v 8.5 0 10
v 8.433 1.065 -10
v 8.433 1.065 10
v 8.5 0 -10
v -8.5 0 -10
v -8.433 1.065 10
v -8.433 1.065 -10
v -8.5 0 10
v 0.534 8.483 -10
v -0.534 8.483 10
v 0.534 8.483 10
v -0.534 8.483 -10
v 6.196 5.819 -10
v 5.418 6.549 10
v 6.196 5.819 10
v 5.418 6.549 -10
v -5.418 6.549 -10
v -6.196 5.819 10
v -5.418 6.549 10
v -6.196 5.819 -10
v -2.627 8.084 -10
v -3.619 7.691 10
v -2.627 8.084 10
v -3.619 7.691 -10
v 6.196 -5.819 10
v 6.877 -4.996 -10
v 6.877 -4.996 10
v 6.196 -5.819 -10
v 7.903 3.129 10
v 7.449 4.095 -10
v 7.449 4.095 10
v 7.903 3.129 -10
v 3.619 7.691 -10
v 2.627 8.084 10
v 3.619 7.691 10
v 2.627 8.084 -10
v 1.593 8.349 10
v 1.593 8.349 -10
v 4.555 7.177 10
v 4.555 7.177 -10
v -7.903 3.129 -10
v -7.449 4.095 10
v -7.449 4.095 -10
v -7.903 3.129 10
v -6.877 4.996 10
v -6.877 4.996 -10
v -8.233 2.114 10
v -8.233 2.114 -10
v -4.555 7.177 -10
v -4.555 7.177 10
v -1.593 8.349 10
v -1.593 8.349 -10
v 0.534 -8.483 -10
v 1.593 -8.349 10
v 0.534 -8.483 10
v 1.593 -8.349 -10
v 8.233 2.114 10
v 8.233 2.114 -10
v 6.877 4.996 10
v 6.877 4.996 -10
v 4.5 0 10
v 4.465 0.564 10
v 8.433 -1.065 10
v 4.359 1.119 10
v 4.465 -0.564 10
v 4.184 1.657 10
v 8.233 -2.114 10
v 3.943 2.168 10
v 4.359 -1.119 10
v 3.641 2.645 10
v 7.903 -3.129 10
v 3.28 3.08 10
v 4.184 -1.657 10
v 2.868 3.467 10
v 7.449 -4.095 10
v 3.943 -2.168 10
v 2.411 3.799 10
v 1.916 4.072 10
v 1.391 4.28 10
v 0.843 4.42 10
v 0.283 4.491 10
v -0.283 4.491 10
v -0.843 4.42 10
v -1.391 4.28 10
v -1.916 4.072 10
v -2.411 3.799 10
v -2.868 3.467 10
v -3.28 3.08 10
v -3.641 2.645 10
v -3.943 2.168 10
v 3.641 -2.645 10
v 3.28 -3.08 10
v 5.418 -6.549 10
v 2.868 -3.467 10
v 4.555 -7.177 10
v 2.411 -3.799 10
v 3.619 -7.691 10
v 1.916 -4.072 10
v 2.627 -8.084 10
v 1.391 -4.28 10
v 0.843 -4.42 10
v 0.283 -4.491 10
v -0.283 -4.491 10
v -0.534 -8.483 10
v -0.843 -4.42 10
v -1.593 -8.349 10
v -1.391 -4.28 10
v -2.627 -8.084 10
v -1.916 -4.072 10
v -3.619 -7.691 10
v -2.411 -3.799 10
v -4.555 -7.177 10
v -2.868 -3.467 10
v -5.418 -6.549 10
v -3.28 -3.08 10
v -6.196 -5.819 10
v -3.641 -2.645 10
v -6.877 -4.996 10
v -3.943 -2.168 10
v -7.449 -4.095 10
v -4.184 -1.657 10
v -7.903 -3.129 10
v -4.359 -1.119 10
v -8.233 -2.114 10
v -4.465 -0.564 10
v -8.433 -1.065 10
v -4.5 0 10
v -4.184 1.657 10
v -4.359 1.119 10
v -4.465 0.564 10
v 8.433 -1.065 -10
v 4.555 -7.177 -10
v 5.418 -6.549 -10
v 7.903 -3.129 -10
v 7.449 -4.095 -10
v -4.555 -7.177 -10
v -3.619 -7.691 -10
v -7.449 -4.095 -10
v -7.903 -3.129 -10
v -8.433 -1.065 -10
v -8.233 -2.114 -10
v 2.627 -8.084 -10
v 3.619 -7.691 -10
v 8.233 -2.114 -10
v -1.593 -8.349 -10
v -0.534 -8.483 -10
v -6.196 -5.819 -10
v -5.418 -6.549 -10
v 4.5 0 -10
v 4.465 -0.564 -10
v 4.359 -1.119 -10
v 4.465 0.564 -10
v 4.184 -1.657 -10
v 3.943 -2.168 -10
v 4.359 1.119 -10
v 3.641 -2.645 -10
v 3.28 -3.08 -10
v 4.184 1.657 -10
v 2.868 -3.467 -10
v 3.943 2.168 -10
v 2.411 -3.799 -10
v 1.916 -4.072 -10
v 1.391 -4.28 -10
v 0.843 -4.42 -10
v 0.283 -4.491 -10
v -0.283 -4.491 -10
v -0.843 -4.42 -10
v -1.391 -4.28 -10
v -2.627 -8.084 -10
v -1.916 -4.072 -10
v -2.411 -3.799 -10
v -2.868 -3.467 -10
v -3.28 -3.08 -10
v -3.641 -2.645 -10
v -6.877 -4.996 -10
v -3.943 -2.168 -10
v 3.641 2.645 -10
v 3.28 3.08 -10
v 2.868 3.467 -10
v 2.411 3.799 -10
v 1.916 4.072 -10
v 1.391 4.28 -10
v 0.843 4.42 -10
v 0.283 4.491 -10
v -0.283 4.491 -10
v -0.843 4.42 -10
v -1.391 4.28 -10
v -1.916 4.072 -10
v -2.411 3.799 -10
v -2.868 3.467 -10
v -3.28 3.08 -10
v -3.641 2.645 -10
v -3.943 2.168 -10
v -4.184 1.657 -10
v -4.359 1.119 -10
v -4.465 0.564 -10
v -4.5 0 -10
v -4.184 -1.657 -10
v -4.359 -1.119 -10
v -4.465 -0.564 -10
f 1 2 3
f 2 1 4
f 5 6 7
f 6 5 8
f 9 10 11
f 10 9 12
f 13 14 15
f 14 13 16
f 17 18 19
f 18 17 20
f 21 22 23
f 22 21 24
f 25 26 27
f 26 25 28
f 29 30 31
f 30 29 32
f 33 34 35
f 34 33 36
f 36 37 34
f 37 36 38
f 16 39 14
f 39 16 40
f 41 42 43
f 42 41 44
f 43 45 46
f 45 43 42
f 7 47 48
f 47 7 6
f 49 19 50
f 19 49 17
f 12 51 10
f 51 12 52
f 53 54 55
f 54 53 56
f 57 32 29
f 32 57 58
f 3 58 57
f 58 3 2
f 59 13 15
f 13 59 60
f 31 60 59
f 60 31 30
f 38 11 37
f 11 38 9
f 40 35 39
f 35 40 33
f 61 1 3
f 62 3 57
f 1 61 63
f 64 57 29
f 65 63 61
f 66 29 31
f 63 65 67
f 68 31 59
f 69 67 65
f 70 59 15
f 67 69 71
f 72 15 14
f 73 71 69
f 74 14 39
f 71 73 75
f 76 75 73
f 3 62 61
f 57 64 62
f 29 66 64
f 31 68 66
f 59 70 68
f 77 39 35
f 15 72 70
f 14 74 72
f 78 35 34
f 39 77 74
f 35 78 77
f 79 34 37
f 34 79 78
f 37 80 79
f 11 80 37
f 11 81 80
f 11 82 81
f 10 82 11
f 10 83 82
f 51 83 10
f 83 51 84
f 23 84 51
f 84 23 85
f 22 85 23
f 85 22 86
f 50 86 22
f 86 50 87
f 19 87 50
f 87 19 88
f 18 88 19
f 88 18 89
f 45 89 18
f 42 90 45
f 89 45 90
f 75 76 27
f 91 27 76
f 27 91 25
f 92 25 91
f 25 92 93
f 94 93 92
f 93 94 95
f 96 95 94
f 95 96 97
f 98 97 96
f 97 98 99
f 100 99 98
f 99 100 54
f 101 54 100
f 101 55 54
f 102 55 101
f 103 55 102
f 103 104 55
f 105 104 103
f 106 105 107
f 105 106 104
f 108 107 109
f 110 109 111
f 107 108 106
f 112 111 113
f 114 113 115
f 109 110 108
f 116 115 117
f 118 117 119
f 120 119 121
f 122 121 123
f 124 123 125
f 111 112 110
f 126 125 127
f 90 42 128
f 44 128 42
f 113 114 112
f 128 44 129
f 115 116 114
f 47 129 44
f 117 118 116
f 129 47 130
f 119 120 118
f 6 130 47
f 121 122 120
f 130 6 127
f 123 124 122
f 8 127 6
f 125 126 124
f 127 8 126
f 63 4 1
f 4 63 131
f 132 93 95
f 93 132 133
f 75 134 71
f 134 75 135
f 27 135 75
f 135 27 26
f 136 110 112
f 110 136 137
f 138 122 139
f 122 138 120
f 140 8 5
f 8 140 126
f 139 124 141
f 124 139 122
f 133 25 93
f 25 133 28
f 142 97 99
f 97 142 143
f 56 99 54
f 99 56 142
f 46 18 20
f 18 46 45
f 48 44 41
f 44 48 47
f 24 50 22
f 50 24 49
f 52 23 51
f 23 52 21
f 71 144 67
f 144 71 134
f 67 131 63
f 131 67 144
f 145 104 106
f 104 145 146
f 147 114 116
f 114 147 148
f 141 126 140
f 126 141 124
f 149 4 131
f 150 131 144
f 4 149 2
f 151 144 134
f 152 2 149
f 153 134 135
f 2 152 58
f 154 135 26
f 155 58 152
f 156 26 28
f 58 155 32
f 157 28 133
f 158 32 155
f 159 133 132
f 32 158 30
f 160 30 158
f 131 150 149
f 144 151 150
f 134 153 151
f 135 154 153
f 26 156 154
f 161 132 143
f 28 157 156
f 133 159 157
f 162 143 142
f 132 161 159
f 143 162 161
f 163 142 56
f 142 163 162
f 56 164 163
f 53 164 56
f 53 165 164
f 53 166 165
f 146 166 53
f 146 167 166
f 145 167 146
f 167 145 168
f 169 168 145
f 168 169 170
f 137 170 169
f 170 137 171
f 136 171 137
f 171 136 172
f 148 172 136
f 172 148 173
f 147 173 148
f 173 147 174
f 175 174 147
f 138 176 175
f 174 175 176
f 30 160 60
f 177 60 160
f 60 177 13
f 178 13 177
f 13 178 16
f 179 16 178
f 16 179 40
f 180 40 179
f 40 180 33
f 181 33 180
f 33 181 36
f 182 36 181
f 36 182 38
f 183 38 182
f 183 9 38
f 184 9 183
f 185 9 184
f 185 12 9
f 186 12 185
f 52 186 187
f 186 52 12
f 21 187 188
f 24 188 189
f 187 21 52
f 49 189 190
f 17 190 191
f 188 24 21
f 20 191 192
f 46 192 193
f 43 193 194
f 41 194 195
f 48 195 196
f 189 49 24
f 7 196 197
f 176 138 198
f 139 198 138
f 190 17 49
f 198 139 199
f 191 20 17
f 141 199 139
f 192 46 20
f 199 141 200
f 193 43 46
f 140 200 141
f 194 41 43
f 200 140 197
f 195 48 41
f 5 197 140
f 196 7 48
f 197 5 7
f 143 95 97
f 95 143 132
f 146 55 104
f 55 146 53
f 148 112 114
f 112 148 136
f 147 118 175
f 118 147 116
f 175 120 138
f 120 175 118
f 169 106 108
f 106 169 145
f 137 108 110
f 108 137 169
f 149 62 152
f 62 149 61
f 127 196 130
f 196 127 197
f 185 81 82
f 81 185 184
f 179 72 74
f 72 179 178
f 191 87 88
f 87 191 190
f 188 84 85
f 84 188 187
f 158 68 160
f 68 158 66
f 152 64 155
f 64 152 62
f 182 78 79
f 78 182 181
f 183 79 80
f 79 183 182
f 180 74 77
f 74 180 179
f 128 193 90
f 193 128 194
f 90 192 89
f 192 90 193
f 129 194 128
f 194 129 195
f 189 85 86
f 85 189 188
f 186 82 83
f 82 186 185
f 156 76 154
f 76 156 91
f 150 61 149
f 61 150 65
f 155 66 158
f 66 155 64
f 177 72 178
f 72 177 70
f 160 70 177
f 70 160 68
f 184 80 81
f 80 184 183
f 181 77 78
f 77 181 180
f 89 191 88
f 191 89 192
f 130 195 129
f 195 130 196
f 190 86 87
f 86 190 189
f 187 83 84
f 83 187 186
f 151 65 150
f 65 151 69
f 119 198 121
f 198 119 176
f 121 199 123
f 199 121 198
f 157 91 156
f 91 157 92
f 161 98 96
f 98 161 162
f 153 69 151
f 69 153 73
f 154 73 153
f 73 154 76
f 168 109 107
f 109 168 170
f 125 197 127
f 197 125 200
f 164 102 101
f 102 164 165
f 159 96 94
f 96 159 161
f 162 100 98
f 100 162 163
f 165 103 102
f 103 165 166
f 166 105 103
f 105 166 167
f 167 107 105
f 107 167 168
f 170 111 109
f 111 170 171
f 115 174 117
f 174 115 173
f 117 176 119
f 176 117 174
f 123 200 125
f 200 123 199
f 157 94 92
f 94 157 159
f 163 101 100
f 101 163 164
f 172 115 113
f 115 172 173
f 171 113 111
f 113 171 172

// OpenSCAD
$fn = 50;


difference() {
	union() {
		translate(v = [0, 0, -10.0000000000]) {
			cylinder(h = 20, r = 8.5000000000);
		}
	}
	union() {
		translate(v = [0, 0, -100.0000000000]) {
			cylinder(h = 200, r = 4.5000000000);
		}
	}
}
